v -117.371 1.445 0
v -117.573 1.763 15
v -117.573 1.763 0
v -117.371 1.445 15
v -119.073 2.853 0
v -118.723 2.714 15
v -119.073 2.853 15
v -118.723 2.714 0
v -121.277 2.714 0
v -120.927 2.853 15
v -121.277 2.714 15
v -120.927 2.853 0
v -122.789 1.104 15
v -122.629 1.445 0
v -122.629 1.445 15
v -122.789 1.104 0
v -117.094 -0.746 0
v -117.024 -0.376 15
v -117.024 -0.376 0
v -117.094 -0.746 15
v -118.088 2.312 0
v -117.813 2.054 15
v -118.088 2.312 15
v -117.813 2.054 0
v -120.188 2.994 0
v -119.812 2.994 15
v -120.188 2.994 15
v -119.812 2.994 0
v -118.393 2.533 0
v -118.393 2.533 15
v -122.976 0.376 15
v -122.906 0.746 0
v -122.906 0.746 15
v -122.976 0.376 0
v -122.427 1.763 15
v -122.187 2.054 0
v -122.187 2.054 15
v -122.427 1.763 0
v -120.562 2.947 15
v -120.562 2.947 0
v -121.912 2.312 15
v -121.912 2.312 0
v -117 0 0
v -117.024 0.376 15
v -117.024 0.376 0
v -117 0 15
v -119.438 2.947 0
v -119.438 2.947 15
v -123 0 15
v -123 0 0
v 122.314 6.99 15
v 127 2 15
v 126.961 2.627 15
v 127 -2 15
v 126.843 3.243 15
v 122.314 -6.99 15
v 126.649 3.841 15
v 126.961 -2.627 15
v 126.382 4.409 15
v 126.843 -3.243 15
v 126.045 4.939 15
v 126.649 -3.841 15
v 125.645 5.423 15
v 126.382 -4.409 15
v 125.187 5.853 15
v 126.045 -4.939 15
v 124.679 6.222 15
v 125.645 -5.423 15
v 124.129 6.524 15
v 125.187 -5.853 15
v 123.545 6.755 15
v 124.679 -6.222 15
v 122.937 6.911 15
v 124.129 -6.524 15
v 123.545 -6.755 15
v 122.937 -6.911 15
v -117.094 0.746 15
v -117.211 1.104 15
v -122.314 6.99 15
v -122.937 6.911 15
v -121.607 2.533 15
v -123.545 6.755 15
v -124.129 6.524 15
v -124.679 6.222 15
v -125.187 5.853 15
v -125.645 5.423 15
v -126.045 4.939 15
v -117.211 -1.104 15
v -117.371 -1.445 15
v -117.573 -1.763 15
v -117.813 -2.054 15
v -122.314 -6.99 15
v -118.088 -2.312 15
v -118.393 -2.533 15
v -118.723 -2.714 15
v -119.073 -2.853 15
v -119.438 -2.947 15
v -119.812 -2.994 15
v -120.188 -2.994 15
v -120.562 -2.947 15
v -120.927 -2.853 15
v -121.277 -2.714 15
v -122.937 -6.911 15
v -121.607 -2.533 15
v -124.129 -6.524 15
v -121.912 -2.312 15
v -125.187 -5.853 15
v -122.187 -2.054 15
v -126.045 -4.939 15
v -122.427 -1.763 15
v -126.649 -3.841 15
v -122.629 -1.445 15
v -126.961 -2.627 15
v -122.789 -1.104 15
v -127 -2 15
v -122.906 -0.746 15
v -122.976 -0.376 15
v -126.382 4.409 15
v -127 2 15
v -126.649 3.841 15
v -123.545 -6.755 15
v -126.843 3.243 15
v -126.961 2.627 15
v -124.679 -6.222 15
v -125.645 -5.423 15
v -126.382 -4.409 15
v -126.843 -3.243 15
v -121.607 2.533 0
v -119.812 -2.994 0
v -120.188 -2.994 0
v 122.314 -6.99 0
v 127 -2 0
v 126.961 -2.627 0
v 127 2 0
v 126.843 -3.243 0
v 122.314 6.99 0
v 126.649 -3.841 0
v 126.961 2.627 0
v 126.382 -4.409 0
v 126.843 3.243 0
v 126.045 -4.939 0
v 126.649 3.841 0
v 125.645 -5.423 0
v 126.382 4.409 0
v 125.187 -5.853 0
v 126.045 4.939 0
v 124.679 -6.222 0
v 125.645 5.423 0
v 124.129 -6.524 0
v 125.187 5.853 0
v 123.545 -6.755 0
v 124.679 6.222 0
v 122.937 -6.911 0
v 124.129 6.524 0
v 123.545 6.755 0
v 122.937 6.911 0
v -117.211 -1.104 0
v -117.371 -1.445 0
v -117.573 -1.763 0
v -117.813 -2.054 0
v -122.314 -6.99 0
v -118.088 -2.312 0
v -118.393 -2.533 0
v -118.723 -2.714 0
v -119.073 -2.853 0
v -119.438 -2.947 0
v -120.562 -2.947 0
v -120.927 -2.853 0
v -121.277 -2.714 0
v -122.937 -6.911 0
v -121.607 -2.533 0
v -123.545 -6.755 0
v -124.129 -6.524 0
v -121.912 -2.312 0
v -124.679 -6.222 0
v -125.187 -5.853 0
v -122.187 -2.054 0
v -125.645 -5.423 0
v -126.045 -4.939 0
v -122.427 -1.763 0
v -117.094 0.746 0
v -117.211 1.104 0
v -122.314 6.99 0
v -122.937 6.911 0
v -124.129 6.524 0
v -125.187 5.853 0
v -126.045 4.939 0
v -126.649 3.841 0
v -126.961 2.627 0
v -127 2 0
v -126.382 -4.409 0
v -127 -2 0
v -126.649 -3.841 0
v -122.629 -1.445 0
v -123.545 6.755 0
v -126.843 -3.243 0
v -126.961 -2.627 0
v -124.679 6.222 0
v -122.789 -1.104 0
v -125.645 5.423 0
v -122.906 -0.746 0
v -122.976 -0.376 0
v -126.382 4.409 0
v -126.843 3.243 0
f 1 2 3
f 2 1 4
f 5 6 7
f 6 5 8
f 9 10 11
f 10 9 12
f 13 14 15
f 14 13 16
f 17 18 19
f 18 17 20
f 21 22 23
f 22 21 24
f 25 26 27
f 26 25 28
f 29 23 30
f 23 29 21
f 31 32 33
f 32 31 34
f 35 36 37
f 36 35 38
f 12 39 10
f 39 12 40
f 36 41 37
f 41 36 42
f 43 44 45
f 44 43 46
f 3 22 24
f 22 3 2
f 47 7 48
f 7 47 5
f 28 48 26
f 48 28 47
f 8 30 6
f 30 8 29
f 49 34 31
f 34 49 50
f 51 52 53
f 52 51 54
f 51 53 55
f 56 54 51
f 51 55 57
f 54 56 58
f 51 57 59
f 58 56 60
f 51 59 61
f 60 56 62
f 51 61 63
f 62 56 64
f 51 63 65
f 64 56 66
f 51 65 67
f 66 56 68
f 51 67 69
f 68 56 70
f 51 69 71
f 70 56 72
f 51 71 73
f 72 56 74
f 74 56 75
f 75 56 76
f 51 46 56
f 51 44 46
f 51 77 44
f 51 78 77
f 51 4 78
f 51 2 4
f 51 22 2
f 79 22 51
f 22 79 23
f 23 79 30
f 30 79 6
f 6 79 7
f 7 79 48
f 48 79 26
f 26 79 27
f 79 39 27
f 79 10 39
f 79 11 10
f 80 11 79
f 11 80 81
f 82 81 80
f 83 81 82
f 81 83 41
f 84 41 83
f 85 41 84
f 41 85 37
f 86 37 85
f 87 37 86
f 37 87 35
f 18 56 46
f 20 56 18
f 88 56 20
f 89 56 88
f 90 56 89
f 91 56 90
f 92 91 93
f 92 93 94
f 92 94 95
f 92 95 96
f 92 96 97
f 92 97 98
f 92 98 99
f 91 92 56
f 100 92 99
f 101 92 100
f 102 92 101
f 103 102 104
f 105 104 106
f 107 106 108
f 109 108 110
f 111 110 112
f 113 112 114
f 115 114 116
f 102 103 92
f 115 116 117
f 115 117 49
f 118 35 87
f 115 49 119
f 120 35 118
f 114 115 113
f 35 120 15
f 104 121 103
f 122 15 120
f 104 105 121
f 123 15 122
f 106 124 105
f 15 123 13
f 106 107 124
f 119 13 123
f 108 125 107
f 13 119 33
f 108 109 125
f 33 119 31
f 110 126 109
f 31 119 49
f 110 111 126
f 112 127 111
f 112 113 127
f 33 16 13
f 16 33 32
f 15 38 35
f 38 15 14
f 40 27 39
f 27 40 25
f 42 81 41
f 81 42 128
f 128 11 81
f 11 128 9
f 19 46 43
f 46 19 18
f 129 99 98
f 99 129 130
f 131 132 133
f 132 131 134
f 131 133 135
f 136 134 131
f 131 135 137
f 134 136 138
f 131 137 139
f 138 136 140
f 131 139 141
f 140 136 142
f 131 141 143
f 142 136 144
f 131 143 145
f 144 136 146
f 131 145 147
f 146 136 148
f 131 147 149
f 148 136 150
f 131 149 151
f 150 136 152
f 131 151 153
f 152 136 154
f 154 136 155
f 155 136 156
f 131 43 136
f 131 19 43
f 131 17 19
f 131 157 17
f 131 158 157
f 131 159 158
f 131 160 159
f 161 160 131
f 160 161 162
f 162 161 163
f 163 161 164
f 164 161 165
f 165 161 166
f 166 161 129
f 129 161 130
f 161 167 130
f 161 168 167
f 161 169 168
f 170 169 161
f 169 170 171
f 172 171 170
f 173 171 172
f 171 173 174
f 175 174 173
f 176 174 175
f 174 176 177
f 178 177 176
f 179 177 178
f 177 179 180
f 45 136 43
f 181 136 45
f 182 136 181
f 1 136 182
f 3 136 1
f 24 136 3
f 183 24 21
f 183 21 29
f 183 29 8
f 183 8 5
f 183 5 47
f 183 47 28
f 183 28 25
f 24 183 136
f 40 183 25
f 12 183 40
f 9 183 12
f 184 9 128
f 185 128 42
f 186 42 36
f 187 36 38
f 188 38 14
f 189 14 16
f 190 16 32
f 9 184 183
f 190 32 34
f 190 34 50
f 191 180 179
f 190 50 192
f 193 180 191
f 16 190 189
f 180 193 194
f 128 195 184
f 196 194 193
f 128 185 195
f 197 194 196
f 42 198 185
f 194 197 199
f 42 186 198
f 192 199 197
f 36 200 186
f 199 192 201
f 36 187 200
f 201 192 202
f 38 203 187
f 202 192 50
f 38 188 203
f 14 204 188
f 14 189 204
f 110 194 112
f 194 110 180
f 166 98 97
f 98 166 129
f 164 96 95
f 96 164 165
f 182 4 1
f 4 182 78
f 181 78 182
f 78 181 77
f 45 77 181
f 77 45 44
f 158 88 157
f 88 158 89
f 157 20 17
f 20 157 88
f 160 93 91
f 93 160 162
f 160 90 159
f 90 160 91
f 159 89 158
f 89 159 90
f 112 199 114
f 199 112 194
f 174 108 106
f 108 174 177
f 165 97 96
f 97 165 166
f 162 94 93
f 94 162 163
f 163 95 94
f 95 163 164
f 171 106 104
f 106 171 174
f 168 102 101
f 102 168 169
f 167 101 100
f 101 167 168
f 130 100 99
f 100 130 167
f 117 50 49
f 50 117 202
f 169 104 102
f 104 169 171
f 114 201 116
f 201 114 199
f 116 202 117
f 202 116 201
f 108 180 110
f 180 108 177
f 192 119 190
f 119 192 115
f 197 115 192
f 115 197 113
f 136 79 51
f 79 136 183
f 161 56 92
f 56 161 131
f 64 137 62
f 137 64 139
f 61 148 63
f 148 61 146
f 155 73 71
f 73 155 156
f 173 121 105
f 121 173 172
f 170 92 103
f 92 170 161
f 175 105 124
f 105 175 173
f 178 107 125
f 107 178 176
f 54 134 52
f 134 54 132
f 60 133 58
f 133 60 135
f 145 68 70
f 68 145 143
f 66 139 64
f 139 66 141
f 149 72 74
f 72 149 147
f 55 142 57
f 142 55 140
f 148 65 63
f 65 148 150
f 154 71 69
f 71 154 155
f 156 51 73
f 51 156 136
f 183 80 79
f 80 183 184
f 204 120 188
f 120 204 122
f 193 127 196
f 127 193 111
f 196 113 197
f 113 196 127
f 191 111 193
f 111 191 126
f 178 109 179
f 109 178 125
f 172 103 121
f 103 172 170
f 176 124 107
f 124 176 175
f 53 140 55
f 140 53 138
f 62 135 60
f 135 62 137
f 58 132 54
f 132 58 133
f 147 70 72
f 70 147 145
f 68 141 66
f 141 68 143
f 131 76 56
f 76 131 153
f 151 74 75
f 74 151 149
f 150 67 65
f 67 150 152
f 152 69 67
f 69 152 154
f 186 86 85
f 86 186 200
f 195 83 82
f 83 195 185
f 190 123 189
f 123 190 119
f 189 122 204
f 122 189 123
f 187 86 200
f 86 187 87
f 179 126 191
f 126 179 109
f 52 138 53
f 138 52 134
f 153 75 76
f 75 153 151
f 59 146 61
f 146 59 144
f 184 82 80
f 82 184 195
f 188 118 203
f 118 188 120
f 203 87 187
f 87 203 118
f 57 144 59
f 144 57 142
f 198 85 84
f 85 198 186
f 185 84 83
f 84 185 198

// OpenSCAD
$fn = 50;


difference() {
	union() {
		hull() {
			translate(v = [-122.0000000000, 2.0000000000, 0]) {
				cylinder(h = 15, r = 5);
			}
			translate(v = [122.0000000000, 2.0000000000, 0]) {
				cylinder(h = 15, r = 5);
			}
			translate(v = [-122.0000000000, -2.0000000000, 0]) {
				cylinder(h = 15, r = 5);
			}
			translate(v = [122.0000000000, -2.0000000000, 0]) {
				cylinder(h = 15, r = 5);
			}
		}
	}
	union() {
		translate(v = [-120.0000000000, 0.0000000000, 0]) {
			cylinder(h = 15, r = 3.0000000000);
		}
		translate(v = [-120.0000000000, 0.0000000000, 0]) {
			cylinder(h = 15, r = 1.5000000000);
		}
		translate(v = [-120.0000000000, 0.0000000000, 0]) {
			cylinder(h = 15, r = 1.5000000000);
		}
		translate(v = [-120.0000000000, 0.0000000000, 0]) {
			cylinder(h = 15, r = 1.5000000000);
		}
	}
}
